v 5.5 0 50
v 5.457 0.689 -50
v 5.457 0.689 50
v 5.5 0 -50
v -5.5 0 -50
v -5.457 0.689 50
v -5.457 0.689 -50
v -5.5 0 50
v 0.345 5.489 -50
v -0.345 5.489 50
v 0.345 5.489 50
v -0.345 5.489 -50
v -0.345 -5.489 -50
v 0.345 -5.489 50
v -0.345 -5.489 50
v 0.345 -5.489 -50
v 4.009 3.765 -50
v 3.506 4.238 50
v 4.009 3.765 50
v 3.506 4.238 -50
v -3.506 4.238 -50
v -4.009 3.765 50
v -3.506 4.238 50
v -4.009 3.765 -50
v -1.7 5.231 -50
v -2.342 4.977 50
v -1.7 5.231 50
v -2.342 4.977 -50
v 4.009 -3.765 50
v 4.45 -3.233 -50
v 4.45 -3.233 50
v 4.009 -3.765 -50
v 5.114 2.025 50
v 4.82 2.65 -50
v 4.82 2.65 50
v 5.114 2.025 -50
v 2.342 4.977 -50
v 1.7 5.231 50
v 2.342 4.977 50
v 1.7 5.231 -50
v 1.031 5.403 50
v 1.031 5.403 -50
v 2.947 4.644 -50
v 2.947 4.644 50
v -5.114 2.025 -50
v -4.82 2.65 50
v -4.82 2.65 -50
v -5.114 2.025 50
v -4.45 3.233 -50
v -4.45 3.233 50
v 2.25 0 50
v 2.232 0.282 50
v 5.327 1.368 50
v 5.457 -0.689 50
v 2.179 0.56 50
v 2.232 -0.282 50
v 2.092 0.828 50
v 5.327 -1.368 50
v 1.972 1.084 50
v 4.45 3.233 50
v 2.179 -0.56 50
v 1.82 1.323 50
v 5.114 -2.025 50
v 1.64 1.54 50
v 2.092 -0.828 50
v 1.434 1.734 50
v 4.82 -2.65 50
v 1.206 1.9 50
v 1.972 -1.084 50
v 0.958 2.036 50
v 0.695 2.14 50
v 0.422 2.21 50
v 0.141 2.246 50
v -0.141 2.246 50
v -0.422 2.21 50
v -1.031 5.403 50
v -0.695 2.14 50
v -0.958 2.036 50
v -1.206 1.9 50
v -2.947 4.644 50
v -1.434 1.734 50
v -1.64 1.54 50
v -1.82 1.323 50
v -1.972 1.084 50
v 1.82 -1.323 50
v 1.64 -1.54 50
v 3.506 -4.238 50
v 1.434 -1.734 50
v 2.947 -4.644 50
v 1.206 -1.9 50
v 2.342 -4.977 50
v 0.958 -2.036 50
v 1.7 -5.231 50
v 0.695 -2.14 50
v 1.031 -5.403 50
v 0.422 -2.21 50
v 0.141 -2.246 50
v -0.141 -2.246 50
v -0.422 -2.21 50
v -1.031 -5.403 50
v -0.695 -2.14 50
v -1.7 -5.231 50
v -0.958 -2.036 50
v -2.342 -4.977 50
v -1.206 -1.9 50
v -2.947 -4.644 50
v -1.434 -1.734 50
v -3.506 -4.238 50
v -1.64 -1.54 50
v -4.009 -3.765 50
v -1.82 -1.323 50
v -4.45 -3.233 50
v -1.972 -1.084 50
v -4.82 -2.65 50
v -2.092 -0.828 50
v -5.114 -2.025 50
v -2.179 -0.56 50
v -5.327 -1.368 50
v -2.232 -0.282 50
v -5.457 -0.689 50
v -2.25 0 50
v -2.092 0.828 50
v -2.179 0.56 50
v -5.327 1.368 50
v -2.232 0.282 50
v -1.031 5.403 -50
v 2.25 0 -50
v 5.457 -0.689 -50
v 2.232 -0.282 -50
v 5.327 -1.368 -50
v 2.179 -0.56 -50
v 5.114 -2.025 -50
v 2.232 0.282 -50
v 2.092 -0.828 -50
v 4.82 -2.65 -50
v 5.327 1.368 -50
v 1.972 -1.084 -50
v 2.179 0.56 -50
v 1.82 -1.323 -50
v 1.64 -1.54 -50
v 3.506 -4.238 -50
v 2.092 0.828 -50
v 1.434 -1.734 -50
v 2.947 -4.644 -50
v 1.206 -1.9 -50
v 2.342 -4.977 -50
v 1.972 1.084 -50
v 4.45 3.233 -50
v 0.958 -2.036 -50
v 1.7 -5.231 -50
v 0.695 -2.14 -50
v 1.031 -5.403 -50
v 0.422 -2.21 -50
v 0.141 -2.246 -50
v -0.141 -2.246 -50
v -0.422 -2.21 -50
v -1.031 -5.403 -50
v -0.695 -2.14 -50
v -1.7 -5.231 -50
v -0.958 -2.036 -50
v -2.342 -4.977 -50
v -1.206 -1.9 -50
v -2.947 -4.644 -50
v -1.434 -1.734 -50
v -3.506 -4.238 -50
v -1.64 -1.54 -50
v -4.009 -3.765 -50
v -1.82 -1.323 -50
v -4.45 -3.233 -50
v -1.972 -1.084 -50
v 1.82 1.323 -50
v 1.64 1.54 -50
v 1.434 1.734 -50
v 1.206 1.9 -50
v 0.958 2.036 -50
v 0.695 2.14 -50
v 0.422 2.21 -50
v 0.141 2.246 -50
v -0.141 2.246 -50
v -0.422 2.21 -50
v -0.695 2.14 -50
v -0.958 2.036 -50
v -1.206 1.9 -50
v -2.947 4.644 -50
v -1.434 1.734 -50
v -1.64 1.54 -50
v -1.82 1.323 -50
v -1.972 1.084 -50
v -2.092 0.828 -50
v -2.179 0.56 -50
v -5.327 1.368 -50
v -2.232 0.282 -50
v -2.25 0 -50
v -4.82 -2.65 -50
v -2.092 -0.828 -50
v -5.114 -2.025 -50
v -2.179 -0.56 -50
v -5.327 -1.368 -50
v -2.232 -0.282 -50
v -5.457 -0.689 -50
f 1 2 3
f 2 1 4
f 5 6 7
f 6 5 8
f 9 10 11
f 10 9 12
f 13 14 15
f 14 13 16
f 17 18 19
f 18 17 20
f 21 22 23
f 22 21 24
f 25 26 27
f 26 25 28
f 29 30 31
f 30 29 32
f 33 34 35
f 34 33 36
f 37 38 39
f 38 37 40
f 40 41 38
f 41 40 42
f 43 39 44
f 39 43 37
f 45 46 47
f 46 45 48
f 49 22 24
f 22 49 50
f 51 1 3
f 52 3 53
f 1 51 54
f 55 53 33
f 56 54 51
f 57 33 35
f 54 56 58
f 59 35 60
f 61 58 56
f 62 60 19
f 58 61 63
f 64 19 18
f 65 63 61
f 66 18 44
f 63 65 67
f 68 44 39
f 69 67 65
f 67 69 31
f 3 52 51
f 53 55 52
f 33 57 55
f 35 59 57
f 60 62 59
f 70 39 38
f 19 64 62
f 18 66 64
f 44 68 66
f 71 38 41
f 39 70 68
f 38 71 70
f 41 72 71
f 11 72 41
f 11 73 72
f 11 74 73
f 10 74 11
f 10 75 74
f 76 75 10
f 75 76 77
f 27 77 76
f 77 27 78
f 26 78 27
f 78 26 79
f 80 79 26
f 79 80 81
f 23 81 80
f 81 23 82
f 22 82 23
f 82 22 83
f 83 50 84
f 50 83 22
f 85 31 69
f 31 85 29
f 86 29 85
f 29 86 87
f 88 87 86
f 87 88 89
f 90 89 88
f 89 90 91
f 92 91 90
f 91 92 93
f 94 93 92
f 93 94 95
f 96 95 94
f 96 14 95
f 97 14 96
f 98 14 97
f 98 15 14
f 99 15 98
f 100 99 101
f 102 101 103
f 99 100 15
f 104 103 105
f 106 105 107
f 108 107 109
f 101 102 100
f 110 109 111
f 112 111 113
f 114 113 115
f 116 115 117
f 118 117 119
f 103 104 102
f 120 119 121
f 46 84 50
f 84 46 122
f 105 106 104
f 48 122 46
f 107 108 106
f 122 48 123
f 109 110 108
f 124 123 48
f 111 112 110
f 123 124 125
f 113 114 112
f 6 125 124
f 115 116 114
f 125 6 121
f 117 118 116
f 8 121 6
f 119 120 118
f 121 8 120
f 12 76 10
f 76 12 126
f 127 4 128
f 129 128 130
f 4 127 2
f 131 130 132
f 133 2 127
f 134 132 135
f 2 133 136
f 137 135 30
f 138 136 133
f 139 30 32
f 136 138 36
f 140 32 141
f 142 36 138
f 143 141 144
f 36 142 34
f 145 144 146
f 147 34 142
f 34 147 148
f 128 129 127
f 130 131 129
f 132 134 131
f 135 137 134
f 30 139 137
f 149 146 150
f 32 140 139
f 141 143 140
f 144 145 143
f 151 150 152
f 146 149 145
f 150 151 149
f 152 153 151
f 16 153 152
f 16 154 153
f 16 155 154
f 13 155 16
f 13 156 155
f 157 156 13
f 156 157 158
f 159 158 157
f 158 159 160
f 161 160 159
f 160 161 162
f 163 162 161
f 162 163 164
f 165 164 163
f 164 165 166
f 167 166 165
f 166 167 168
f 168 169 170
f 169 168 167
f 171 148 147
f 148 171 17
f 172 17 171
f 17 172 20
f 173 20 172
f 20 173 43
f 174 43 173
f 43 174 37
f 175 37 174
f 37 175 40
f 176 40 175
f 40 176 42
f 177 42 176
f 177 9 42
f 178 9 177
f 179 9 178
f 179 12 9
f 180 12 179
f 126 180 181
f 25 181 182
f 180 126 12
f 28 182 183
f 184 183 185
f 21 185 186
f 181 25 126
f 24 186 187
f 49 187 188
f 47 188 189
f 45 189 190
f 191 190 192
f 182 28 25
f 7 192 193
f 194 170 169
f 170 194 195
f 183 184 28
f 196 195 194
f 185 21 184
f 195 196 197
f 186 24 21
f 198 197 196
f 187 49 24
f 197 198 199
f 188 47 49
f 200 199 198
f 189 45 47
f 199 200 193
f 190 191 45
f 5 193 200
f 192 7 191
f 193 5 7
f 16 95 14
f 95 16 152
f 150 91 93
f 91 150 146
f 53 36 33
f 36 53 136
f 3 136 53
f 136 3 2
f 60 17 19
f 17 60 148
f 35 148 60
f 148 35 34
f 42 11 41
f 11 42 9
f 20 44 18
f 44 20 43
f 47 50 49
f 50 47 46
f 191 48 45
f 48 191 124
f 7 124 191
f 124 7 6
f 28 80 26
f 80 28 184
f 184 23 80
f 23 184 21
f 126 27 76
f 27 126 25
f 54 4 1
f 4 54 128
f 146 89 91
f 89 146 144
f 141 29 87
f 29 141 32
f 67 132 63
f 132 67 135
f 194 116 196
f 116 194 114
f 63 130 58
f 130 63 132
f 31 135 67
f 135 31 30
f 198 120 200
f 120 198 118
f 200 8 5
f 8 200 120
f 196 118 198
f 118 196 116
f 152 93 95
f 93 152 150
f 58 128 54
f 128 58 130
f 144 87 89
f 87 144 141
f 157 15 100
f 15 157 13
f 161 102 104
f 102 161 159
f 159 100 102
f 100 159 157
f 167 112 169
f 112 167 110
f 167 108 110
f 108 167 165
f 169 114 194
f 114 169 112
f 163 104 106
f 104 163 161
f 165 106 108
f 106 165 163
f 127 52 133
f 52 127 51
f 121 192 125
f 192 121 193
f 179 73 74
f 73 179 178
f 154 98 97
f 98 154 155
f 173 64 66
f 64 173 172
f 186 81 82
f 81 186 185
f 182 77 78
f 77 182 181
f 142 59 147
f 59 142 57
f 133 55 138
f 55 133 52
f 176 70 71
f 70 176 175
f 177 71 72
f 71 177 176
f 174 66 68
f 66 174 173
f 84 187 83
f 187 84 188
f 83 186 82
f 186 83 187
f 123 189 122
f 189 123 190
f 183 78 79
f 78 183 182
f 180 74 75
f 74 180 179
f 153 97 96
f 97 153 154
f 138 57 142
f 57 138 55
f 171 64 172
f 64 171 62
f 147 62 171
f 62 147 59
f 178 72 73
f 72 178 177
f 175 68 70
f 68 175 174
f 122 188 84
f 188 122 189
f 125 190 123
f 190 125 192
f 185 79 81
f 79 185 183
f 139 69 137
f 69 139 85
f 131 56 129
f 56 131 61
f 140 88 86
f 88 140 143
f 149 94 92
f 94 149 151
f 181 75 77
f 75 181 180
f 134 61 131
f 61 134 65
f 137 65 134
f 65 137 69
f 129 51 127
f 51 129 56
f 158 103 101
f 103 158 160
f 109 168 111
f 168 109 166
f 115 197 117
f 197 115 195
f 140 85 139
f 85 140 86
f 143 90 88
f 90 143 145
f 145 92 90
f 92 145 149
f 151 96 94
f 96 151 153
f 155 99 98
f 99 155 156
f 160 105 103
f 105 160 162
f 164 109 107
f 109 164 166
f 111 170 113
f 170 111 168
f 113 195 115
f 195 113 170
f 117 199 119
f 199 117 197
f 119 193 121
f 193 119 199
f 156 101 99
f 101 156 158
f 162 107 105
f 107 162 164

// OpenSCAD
$fn = 50;


difference() {
	union() {
		translate(v = [0, 0, -50.0000000000]) {
			cylinder(h = 100, r = 5.5000000000);
		}
	}
	union() {
		translate(v = [0, 0, -100.0000000000]) {
			cylinder(h = 200, r = 2.2500000000);
		}
	}
}
